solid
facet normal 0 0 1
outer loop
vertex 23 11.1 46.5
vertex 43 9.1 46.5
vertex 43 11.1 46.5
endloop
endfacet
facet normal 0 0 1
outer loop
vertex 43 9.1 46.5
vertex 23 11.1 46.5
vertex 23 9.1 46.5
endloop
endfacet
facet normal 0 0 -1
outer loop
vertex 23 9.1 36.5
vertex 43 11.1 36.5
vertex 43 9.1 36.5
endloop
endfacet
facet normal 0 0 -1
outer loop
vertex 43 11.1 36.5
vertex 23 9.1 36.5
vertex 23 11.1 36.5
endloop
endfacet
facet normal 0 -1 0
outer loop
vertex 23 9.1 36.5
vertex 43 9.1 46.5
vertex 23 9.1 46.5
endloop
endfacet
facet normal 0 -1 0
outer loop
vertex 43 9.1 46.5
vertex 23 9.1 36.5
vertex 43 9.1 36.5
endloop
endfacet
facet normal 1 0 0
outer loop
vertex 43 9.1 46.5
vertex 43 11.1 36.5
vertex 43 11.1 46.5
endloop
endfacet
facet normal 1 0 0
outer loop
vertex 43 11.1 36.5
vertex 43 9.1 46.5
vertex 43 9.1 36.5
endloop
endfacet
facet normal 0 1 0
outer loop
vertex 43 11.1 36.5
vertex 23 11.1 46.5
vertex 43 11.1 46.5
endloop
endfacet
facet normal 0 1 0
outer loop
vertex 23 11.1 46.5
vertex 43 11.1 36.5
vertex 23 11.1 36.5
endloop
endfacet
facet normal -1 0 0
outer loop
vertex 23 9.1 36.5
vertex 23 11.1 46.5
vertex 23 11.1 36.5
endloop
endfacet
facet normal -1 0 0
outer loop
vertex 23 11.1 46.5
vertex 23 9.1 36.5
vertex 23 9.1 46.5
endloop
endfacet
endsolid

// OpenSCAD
// file: D:/Projects/assembly-workshop/outputs/Screen_Pi_Hue_SCR5-H_2026-10-30/checks/geometry.scad
// SCR5-G; mm; FRONT view: X right, Z up, Y into rack. Glass/plate front Y=0.
// Measured values: work/screen-5in/Dimensions.md. Physical fit/strength UNKNOWN.
part="plate";
DROP=0.45; // coupon winner can be substituted here; all three pins use this DROP
LIP=0.8; LIP_ON=true;
LIP_EDGES=[true,true,false,false]; // left,right,bottom,top; Brian: side lips only, cosmetic
FRAME_STEP=1.5; // measured glass-edge inset to metal LCD frame, left/right only
SHIM=0; // moves rear frame seat and plate-boss mating face back
$fn=48;
GCX=33; GCZ=41.5; PW=252; PH=88.8; PT=4;
GW=120.7; GH=77.2; CLEAR=0.2; WW=GW+2*CLEAR; WH=GH+2*CLEAR;
SEAT=13.3+SHIM; FT=3;
SO=[56.45,34]; BTN_X=[45.5,35.5,25.5];
PCB_TOP=38; GAP=0.10; LEAF_T=0.8;
HOLE=[3.4,40.3,44.7];
BX=[GCX-68,GCX+68]; BZ=[10,72];
// DSI connector X extent is unmeasured: conservative assumed 8 mm inward from PCB edge.
DSI=[GCX-60.5,9.1,GCZ-38+30,8,5.25,21];
module xz(y,d){translate([0,y+d,0])rotate([90,0,0])linear_extrude(d)children();}
// rr/rack_slots copied from SCR5-F; same exact slot centres, outline shifted -0.05 Z to centre 44.4.
module rr(w,h,r){hull()for(x=[-w/2+r,w/2-r],z=[-h/2+r,h/2-r])translate([x,z])circle(r=r);}
module rack_slots(){for(x=[-118.2625,118.2625],z=[6.323,38.127,50.773,82.577])translate([x,z])hull()for(dx=[-1.5,1.5])translate([dx,0])circle(d=7);}
module cyl_y(x,y,z,d,h){translate([x,y,z])rotate([-90,0,0])cylinder(d=d,h=h);}
module window_cut(){
  xz(-0.02,4.04)translate([GCX,GCZ])square([WW,WH],center=true);
  // 0.3 x 45-degree chamfer, square corners, front only.
  translate([GCX,0.3,GCZ])rotate([90,0,0])
    linear_extrude(height=0.3,scale=[(WW+0.6)/WW,(WH+0.6)/WH])square([WW,WH],center=true);
}
module lips(){
  // Cosmetic side ledges only; rear frame/standoffs set depth and retain the screen.
  if(LIP_ON)for(i=[0:3])if(LIP_EDGES[i]){
    if(i<2)translate([GCX+(i==0?-WW/2:WW/2-LIP),2.5,GCZ-GH/2+4])cube([LIP,0.8,GH-8]);
    else translate([GCX-GW/2+4,2.5,GCZ+(i==2?-WH/2:WH/2-LIP)])cube([GW-8,0.8,LIP]);
  }
}
// Leaf/nub/bump geometry copied from SCR5-WP-A, translated to this glass centre.
module leaves(){for(x=BTN_X)translate([GCX+x-1.5,0,GCZ]){
  translate([0,0,PCB_TOP+GAP+0.9+0.1])cube([3,11.8,LEAF_T]);
  translate([0,10.2,PCB_TOP+GAP])cube([3,1.4,1.0+LEAF_T/2]);
  translate([0,10.4,PCB_TOP+GAP+1.0+LEAF_T])cube([3,1.0,0.9]);
}}
module plate(){difference(){union(){
  difference(){xz(0,PT)translate([0,PH/2])rr(PW,PH,2.5);window_cut();}
  for(x=BX,z=BZ)cyl_y(x,3.9,z,8,SEAT-3.9);
  leaves(); lips();
 }
 xz(-0.02,4.04)rack_slots();
 for(x=BTN_X)translate([GCX+x-HOLE[0]/2,-0.02,GCZ+HOLE[1]])cube([HOLE[0],SEAT+FT+0.04,HOLE[2]-HOLE[1]]);
 // Printed-in screw pilots (no heat-set OD assumption): nominal M2.5, fit UNKNOWN.
 for(x=BX,z=BZ)cyl_y(x,SEAT-6,z,2.1,6.02);
 // Rear engraving, 0.5 deep, left field.
 xz(3.5,0.52)translate([-75,40])mirror([1,0])text("SCR5-G",size=6,halign="center",font="Liberation Sans:style=Bold");
}}
module frame_blank(){
  // C-shaped perimeter; no material across the board centre / touch FPC.
  xz(SEAT,FT)translate([GCX,GCZ])difference(){square([132,76],center=true);square([116,60],center=true);}
  for(sx=[-1,1],sz=[-1,1])cyl_y(GCX+sx*SO[0],SEAT,GCZ+sz*SO[1],9,FT);
  for(x=BX,z=BZ)hull(){cyl_y(x,SEAT,z,8,FT);cyl_y(GCX+(x<GCX?-62:62),SEAT,z,8,FT);}
}
module dsi_keepout(){translate([DSI[0]-3,DSI[1]-3,DSI[2]-3])cube([DSI[3]+6,DSI[4]+6,DSI[5]+6]);}
module ribbon_route(){
  // Open left/up corridor 18 mm wide; extends past top of plate.
  translate([GCX-84,6.1,GCZ-11])cube([18,24,65]);
  translate([GCX-84,6.1,GCZ-11])cube([32,24,27]);
}
module frame(){difference(){frame_blank();dsi_keepout();ribbon_route();
 for(sx=[-1,1],sz=[-1,1])cyl_y(GCX+sx*SO[0],SEAT-0.02,GCZ+sz*SO[1],2.8,FT+0.04);
 for(x=BX,z=BZ)cyl_y(x,SEAT-0.02,z,2.8,FT+0.04);
}}
// Pin polygon/cap/notch/dot design copied unchanged from SCR5-WP-A.
module pin(d,dots){s=2*d+0.5;difference(){union(){
 translate([-1.5,0,0])rotate([90,0,90])linear_extrude(3)polygon([
 [-s-0.02,40.5],[10.2,40.5],[10.2,41.0],[11.5,41.0],[11.5+2*d,41.0-d],[15,41.0-d],[15,44.5],[-s-0.02,44.5]]);
 translate([-2.5,-s-1.5,39.6])cube([5,1.5,5.8]);
 }for(i=[0:dots-1])translate([(i-(dots-1)/2)*1.4,-s-1.5-0.01,43.5])rotate([-90,0,0])cylinder(d=0.9,h=0.4);}}
module placed_pin(i){translate([GCX+BTN_X[i],0,GCZ])pin(DROP,i+1);}
// Measured layers: cover glass 0.9 + second glass 1.6, metal frame 3.0,
// open gap 2.0, PCB 1.6. Metal frame inset ~1.5 at LEFT/RIGHT only.
// PCB centred under glass and full metal-frame top/bottom extent remain UNKNOWN.
module glass(){translate([GCX-GW/2,0,GCZ-GH/2])cube([GW,2.5,GH]);}
module lcd(){
  translate([GCX-GW/2+FRAME_STEP,2.5,GCZ-GH/2])cube([GW-2*FRAME_STEP,3.0,GH]);
}
module pcb(){translate([GCX-60.5,7.5,GCZ-38])cube([121,1.6,76]);}
module standoffs(){for(sx=[-1,1],sz=[-1,1])difference(){cyl_y(GCX+sx*SO[0],9.1,GCZ+sz*SO[1],5.5,4.2);cyl_y(GCX+sx*SO[0],9.08,GCZ+sz*SO[1],2.5,4.24);}}
module buttons(){for(x=BTN_X){
 translate([GCX+x-3.5,9.1,GCZ+38-3.4])cube([7,3.6,2.4]);
 translate([GCX+x-1.5,9.1,GCZ+37])cube([3,3.6,1]);
}}
module dsi(){translate([DSI[0],DSI[1],DSI[2]])cube([DSI[3],DSI[4],DSI[5]]);}
module touch(){translate([GCX-10,9.1,GCZ-5])cube([20,2,10]);} // lateral extent unmeasured
module dummy(){glass();lcd();pcb();standoffs();buttons();dsi();touch();}
module assembly(){color("gray")plate();color("orange")frame();for(i=[0:2])color("cyan")placed_pin(i);color([0.2,0.3,0.4,0.4])dummy();}
// main file
include <D:/Projects/assembly-workshop/outputs/Screen_Pi_Hue_SCR5-H_2026-10-30/checks/geometry.scad>
touch();
